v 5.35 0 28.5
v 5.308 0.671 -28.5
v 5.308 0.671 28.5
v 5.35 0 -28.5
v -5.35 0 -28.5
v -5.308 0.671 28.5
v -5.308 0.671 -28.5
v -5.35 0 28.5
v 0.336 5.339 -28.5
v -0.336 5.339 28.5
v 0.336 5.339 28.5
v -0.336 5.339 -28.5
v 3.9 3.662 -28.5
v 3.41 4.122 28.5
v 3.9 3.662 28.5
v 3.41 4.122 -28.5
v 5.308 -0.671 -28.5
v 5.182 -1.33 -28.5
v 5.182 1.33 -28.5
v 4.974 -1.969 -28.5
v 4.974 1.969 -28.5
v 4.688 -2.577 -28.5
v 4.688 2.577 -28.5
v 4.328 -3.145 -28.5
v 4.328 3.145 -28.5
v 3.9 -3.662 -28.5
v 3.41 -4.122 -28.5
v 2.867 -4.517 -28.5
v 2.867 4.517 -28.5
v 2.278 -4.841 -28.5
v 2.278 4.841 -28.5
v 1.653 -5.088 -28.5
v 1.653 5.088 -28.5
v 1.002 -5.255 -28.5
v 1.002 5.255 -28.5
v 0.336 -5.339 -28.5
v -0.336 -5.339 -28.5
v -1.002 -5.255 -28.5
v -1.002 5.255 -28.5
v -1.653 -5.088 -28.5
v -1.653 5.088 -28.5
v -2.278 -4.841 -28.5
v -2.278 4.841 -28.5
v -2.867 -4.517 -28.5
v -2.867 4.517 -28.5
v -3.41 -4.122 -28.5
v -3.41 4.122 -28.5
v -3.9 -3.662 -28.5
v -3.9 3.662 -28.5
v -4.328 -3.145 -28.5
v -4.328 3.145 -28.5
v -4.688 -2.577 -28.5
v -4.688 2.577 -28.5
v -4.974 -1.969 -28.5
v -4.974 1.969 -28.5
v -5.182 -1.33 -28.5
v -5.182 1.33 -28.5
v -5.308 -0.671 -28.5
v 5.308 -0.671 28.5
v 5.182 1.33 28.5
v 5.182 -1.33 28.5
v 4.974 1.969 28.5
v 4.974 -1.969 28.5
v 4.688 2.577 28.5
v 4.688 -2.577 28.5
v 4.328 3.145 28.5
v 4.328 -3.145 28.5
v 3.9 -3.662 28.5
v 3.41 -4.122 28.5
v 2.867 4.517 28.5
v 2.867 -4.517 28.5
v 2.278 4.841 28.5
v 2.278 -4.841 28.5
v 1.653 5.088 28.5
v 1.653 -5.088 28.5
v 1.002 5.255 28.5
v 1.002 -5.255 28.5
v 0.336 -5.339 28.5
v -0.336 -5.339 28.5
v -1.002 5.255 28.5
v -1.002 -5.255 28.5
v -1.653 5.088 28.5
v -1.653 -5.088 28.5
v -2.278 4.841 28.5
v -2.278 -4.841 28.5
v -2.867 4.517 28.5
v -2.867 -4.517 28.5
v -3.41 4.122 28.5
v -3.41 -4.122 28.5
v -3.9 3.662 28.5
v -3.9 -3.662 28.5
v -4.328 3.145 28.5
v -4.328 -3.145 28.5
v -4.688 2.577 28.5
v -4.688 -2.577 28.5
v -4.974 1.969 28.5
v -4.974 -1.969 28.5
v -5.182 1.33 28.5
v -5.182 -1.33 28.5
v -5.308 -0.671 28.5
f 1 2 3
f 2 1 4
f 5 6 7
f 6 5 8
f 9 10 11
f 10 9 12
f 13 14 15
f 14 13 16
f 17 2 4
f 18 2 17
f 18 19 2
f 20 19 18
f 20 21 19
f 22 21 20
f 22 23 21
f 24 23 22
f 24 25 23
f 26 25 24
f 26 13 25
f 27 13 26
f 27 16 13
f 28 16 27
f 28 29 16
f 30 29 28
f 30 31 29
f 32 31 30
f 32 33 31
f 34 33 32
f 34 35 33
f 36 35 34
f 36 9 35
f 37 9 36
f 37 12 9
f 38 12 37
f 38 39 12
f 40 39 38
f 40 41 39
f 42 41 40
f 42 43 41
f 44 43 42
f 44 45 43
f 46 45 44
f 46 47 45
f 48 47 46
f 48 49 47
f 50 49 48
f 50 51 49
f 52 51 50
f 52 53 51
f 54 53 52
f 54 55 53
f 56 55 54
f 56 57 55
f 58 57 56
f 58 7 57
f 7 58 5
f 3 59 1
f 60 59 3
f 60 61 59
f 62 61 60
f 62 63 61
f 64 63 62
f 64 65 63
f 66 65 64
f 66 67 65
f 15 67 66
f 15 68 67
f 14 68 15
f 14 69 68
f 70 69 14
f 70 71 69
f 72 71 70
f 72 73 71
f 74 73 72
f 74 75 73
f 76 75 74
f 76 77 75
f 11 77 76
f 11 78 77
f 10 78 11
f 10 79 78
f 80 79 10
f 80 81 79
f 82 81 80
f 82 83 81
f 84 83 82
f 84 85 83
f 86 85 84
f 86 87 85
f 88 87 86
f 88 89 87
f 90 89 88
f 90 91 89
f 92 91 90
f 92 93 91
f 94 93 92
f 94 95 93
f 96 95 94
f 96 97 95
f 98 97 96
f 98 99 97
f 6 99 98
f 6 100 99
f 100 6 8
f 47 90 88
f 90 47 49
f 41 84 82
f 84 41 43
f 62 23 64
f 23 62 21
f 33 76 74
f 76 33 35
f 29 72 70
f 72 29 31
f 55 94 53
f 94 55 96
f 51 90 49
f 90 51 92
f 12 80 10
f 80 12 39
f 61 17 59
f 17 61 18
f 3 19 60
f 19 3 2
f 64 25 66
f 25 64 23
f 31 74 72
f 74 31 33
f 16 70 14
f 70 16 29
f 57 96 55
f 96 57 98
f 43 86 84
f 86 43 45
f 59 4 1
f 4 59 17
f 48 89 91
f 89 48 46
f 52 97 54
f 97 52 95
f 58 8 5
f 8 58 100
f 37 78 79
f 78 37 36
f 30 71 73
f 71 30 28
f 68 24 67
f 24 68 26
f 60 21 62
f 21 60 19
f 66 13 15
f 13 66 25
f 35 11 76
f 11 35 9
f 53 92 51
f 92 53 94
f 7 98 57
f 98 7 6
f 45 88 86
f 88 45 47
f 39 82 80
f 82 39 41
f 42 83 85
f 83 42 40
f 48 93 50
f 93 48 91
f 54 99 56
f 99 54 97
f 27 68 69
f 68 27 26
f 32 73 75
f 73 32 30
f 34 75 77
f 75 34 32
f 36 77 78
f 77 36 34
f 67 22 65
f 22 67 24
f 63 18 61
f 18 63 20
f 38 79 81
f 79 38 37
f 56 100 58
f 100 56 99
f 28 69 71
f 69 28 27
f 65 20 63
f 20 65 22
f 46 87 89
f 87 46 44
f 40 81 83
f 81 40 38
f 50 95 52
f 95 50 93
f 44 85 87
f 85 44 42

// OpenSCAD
$fn = 50;


difference() {
	union() {
		translate(v = [0, 0, -28.5000000000]) {
			cylinder(h = 57, r = 5.3500000000);
		}
	}
	union() {
		translate(v = [0, 0, -100.0000000000]) {
			cylinder(h = 200, r = 0);
		}
	}
}
